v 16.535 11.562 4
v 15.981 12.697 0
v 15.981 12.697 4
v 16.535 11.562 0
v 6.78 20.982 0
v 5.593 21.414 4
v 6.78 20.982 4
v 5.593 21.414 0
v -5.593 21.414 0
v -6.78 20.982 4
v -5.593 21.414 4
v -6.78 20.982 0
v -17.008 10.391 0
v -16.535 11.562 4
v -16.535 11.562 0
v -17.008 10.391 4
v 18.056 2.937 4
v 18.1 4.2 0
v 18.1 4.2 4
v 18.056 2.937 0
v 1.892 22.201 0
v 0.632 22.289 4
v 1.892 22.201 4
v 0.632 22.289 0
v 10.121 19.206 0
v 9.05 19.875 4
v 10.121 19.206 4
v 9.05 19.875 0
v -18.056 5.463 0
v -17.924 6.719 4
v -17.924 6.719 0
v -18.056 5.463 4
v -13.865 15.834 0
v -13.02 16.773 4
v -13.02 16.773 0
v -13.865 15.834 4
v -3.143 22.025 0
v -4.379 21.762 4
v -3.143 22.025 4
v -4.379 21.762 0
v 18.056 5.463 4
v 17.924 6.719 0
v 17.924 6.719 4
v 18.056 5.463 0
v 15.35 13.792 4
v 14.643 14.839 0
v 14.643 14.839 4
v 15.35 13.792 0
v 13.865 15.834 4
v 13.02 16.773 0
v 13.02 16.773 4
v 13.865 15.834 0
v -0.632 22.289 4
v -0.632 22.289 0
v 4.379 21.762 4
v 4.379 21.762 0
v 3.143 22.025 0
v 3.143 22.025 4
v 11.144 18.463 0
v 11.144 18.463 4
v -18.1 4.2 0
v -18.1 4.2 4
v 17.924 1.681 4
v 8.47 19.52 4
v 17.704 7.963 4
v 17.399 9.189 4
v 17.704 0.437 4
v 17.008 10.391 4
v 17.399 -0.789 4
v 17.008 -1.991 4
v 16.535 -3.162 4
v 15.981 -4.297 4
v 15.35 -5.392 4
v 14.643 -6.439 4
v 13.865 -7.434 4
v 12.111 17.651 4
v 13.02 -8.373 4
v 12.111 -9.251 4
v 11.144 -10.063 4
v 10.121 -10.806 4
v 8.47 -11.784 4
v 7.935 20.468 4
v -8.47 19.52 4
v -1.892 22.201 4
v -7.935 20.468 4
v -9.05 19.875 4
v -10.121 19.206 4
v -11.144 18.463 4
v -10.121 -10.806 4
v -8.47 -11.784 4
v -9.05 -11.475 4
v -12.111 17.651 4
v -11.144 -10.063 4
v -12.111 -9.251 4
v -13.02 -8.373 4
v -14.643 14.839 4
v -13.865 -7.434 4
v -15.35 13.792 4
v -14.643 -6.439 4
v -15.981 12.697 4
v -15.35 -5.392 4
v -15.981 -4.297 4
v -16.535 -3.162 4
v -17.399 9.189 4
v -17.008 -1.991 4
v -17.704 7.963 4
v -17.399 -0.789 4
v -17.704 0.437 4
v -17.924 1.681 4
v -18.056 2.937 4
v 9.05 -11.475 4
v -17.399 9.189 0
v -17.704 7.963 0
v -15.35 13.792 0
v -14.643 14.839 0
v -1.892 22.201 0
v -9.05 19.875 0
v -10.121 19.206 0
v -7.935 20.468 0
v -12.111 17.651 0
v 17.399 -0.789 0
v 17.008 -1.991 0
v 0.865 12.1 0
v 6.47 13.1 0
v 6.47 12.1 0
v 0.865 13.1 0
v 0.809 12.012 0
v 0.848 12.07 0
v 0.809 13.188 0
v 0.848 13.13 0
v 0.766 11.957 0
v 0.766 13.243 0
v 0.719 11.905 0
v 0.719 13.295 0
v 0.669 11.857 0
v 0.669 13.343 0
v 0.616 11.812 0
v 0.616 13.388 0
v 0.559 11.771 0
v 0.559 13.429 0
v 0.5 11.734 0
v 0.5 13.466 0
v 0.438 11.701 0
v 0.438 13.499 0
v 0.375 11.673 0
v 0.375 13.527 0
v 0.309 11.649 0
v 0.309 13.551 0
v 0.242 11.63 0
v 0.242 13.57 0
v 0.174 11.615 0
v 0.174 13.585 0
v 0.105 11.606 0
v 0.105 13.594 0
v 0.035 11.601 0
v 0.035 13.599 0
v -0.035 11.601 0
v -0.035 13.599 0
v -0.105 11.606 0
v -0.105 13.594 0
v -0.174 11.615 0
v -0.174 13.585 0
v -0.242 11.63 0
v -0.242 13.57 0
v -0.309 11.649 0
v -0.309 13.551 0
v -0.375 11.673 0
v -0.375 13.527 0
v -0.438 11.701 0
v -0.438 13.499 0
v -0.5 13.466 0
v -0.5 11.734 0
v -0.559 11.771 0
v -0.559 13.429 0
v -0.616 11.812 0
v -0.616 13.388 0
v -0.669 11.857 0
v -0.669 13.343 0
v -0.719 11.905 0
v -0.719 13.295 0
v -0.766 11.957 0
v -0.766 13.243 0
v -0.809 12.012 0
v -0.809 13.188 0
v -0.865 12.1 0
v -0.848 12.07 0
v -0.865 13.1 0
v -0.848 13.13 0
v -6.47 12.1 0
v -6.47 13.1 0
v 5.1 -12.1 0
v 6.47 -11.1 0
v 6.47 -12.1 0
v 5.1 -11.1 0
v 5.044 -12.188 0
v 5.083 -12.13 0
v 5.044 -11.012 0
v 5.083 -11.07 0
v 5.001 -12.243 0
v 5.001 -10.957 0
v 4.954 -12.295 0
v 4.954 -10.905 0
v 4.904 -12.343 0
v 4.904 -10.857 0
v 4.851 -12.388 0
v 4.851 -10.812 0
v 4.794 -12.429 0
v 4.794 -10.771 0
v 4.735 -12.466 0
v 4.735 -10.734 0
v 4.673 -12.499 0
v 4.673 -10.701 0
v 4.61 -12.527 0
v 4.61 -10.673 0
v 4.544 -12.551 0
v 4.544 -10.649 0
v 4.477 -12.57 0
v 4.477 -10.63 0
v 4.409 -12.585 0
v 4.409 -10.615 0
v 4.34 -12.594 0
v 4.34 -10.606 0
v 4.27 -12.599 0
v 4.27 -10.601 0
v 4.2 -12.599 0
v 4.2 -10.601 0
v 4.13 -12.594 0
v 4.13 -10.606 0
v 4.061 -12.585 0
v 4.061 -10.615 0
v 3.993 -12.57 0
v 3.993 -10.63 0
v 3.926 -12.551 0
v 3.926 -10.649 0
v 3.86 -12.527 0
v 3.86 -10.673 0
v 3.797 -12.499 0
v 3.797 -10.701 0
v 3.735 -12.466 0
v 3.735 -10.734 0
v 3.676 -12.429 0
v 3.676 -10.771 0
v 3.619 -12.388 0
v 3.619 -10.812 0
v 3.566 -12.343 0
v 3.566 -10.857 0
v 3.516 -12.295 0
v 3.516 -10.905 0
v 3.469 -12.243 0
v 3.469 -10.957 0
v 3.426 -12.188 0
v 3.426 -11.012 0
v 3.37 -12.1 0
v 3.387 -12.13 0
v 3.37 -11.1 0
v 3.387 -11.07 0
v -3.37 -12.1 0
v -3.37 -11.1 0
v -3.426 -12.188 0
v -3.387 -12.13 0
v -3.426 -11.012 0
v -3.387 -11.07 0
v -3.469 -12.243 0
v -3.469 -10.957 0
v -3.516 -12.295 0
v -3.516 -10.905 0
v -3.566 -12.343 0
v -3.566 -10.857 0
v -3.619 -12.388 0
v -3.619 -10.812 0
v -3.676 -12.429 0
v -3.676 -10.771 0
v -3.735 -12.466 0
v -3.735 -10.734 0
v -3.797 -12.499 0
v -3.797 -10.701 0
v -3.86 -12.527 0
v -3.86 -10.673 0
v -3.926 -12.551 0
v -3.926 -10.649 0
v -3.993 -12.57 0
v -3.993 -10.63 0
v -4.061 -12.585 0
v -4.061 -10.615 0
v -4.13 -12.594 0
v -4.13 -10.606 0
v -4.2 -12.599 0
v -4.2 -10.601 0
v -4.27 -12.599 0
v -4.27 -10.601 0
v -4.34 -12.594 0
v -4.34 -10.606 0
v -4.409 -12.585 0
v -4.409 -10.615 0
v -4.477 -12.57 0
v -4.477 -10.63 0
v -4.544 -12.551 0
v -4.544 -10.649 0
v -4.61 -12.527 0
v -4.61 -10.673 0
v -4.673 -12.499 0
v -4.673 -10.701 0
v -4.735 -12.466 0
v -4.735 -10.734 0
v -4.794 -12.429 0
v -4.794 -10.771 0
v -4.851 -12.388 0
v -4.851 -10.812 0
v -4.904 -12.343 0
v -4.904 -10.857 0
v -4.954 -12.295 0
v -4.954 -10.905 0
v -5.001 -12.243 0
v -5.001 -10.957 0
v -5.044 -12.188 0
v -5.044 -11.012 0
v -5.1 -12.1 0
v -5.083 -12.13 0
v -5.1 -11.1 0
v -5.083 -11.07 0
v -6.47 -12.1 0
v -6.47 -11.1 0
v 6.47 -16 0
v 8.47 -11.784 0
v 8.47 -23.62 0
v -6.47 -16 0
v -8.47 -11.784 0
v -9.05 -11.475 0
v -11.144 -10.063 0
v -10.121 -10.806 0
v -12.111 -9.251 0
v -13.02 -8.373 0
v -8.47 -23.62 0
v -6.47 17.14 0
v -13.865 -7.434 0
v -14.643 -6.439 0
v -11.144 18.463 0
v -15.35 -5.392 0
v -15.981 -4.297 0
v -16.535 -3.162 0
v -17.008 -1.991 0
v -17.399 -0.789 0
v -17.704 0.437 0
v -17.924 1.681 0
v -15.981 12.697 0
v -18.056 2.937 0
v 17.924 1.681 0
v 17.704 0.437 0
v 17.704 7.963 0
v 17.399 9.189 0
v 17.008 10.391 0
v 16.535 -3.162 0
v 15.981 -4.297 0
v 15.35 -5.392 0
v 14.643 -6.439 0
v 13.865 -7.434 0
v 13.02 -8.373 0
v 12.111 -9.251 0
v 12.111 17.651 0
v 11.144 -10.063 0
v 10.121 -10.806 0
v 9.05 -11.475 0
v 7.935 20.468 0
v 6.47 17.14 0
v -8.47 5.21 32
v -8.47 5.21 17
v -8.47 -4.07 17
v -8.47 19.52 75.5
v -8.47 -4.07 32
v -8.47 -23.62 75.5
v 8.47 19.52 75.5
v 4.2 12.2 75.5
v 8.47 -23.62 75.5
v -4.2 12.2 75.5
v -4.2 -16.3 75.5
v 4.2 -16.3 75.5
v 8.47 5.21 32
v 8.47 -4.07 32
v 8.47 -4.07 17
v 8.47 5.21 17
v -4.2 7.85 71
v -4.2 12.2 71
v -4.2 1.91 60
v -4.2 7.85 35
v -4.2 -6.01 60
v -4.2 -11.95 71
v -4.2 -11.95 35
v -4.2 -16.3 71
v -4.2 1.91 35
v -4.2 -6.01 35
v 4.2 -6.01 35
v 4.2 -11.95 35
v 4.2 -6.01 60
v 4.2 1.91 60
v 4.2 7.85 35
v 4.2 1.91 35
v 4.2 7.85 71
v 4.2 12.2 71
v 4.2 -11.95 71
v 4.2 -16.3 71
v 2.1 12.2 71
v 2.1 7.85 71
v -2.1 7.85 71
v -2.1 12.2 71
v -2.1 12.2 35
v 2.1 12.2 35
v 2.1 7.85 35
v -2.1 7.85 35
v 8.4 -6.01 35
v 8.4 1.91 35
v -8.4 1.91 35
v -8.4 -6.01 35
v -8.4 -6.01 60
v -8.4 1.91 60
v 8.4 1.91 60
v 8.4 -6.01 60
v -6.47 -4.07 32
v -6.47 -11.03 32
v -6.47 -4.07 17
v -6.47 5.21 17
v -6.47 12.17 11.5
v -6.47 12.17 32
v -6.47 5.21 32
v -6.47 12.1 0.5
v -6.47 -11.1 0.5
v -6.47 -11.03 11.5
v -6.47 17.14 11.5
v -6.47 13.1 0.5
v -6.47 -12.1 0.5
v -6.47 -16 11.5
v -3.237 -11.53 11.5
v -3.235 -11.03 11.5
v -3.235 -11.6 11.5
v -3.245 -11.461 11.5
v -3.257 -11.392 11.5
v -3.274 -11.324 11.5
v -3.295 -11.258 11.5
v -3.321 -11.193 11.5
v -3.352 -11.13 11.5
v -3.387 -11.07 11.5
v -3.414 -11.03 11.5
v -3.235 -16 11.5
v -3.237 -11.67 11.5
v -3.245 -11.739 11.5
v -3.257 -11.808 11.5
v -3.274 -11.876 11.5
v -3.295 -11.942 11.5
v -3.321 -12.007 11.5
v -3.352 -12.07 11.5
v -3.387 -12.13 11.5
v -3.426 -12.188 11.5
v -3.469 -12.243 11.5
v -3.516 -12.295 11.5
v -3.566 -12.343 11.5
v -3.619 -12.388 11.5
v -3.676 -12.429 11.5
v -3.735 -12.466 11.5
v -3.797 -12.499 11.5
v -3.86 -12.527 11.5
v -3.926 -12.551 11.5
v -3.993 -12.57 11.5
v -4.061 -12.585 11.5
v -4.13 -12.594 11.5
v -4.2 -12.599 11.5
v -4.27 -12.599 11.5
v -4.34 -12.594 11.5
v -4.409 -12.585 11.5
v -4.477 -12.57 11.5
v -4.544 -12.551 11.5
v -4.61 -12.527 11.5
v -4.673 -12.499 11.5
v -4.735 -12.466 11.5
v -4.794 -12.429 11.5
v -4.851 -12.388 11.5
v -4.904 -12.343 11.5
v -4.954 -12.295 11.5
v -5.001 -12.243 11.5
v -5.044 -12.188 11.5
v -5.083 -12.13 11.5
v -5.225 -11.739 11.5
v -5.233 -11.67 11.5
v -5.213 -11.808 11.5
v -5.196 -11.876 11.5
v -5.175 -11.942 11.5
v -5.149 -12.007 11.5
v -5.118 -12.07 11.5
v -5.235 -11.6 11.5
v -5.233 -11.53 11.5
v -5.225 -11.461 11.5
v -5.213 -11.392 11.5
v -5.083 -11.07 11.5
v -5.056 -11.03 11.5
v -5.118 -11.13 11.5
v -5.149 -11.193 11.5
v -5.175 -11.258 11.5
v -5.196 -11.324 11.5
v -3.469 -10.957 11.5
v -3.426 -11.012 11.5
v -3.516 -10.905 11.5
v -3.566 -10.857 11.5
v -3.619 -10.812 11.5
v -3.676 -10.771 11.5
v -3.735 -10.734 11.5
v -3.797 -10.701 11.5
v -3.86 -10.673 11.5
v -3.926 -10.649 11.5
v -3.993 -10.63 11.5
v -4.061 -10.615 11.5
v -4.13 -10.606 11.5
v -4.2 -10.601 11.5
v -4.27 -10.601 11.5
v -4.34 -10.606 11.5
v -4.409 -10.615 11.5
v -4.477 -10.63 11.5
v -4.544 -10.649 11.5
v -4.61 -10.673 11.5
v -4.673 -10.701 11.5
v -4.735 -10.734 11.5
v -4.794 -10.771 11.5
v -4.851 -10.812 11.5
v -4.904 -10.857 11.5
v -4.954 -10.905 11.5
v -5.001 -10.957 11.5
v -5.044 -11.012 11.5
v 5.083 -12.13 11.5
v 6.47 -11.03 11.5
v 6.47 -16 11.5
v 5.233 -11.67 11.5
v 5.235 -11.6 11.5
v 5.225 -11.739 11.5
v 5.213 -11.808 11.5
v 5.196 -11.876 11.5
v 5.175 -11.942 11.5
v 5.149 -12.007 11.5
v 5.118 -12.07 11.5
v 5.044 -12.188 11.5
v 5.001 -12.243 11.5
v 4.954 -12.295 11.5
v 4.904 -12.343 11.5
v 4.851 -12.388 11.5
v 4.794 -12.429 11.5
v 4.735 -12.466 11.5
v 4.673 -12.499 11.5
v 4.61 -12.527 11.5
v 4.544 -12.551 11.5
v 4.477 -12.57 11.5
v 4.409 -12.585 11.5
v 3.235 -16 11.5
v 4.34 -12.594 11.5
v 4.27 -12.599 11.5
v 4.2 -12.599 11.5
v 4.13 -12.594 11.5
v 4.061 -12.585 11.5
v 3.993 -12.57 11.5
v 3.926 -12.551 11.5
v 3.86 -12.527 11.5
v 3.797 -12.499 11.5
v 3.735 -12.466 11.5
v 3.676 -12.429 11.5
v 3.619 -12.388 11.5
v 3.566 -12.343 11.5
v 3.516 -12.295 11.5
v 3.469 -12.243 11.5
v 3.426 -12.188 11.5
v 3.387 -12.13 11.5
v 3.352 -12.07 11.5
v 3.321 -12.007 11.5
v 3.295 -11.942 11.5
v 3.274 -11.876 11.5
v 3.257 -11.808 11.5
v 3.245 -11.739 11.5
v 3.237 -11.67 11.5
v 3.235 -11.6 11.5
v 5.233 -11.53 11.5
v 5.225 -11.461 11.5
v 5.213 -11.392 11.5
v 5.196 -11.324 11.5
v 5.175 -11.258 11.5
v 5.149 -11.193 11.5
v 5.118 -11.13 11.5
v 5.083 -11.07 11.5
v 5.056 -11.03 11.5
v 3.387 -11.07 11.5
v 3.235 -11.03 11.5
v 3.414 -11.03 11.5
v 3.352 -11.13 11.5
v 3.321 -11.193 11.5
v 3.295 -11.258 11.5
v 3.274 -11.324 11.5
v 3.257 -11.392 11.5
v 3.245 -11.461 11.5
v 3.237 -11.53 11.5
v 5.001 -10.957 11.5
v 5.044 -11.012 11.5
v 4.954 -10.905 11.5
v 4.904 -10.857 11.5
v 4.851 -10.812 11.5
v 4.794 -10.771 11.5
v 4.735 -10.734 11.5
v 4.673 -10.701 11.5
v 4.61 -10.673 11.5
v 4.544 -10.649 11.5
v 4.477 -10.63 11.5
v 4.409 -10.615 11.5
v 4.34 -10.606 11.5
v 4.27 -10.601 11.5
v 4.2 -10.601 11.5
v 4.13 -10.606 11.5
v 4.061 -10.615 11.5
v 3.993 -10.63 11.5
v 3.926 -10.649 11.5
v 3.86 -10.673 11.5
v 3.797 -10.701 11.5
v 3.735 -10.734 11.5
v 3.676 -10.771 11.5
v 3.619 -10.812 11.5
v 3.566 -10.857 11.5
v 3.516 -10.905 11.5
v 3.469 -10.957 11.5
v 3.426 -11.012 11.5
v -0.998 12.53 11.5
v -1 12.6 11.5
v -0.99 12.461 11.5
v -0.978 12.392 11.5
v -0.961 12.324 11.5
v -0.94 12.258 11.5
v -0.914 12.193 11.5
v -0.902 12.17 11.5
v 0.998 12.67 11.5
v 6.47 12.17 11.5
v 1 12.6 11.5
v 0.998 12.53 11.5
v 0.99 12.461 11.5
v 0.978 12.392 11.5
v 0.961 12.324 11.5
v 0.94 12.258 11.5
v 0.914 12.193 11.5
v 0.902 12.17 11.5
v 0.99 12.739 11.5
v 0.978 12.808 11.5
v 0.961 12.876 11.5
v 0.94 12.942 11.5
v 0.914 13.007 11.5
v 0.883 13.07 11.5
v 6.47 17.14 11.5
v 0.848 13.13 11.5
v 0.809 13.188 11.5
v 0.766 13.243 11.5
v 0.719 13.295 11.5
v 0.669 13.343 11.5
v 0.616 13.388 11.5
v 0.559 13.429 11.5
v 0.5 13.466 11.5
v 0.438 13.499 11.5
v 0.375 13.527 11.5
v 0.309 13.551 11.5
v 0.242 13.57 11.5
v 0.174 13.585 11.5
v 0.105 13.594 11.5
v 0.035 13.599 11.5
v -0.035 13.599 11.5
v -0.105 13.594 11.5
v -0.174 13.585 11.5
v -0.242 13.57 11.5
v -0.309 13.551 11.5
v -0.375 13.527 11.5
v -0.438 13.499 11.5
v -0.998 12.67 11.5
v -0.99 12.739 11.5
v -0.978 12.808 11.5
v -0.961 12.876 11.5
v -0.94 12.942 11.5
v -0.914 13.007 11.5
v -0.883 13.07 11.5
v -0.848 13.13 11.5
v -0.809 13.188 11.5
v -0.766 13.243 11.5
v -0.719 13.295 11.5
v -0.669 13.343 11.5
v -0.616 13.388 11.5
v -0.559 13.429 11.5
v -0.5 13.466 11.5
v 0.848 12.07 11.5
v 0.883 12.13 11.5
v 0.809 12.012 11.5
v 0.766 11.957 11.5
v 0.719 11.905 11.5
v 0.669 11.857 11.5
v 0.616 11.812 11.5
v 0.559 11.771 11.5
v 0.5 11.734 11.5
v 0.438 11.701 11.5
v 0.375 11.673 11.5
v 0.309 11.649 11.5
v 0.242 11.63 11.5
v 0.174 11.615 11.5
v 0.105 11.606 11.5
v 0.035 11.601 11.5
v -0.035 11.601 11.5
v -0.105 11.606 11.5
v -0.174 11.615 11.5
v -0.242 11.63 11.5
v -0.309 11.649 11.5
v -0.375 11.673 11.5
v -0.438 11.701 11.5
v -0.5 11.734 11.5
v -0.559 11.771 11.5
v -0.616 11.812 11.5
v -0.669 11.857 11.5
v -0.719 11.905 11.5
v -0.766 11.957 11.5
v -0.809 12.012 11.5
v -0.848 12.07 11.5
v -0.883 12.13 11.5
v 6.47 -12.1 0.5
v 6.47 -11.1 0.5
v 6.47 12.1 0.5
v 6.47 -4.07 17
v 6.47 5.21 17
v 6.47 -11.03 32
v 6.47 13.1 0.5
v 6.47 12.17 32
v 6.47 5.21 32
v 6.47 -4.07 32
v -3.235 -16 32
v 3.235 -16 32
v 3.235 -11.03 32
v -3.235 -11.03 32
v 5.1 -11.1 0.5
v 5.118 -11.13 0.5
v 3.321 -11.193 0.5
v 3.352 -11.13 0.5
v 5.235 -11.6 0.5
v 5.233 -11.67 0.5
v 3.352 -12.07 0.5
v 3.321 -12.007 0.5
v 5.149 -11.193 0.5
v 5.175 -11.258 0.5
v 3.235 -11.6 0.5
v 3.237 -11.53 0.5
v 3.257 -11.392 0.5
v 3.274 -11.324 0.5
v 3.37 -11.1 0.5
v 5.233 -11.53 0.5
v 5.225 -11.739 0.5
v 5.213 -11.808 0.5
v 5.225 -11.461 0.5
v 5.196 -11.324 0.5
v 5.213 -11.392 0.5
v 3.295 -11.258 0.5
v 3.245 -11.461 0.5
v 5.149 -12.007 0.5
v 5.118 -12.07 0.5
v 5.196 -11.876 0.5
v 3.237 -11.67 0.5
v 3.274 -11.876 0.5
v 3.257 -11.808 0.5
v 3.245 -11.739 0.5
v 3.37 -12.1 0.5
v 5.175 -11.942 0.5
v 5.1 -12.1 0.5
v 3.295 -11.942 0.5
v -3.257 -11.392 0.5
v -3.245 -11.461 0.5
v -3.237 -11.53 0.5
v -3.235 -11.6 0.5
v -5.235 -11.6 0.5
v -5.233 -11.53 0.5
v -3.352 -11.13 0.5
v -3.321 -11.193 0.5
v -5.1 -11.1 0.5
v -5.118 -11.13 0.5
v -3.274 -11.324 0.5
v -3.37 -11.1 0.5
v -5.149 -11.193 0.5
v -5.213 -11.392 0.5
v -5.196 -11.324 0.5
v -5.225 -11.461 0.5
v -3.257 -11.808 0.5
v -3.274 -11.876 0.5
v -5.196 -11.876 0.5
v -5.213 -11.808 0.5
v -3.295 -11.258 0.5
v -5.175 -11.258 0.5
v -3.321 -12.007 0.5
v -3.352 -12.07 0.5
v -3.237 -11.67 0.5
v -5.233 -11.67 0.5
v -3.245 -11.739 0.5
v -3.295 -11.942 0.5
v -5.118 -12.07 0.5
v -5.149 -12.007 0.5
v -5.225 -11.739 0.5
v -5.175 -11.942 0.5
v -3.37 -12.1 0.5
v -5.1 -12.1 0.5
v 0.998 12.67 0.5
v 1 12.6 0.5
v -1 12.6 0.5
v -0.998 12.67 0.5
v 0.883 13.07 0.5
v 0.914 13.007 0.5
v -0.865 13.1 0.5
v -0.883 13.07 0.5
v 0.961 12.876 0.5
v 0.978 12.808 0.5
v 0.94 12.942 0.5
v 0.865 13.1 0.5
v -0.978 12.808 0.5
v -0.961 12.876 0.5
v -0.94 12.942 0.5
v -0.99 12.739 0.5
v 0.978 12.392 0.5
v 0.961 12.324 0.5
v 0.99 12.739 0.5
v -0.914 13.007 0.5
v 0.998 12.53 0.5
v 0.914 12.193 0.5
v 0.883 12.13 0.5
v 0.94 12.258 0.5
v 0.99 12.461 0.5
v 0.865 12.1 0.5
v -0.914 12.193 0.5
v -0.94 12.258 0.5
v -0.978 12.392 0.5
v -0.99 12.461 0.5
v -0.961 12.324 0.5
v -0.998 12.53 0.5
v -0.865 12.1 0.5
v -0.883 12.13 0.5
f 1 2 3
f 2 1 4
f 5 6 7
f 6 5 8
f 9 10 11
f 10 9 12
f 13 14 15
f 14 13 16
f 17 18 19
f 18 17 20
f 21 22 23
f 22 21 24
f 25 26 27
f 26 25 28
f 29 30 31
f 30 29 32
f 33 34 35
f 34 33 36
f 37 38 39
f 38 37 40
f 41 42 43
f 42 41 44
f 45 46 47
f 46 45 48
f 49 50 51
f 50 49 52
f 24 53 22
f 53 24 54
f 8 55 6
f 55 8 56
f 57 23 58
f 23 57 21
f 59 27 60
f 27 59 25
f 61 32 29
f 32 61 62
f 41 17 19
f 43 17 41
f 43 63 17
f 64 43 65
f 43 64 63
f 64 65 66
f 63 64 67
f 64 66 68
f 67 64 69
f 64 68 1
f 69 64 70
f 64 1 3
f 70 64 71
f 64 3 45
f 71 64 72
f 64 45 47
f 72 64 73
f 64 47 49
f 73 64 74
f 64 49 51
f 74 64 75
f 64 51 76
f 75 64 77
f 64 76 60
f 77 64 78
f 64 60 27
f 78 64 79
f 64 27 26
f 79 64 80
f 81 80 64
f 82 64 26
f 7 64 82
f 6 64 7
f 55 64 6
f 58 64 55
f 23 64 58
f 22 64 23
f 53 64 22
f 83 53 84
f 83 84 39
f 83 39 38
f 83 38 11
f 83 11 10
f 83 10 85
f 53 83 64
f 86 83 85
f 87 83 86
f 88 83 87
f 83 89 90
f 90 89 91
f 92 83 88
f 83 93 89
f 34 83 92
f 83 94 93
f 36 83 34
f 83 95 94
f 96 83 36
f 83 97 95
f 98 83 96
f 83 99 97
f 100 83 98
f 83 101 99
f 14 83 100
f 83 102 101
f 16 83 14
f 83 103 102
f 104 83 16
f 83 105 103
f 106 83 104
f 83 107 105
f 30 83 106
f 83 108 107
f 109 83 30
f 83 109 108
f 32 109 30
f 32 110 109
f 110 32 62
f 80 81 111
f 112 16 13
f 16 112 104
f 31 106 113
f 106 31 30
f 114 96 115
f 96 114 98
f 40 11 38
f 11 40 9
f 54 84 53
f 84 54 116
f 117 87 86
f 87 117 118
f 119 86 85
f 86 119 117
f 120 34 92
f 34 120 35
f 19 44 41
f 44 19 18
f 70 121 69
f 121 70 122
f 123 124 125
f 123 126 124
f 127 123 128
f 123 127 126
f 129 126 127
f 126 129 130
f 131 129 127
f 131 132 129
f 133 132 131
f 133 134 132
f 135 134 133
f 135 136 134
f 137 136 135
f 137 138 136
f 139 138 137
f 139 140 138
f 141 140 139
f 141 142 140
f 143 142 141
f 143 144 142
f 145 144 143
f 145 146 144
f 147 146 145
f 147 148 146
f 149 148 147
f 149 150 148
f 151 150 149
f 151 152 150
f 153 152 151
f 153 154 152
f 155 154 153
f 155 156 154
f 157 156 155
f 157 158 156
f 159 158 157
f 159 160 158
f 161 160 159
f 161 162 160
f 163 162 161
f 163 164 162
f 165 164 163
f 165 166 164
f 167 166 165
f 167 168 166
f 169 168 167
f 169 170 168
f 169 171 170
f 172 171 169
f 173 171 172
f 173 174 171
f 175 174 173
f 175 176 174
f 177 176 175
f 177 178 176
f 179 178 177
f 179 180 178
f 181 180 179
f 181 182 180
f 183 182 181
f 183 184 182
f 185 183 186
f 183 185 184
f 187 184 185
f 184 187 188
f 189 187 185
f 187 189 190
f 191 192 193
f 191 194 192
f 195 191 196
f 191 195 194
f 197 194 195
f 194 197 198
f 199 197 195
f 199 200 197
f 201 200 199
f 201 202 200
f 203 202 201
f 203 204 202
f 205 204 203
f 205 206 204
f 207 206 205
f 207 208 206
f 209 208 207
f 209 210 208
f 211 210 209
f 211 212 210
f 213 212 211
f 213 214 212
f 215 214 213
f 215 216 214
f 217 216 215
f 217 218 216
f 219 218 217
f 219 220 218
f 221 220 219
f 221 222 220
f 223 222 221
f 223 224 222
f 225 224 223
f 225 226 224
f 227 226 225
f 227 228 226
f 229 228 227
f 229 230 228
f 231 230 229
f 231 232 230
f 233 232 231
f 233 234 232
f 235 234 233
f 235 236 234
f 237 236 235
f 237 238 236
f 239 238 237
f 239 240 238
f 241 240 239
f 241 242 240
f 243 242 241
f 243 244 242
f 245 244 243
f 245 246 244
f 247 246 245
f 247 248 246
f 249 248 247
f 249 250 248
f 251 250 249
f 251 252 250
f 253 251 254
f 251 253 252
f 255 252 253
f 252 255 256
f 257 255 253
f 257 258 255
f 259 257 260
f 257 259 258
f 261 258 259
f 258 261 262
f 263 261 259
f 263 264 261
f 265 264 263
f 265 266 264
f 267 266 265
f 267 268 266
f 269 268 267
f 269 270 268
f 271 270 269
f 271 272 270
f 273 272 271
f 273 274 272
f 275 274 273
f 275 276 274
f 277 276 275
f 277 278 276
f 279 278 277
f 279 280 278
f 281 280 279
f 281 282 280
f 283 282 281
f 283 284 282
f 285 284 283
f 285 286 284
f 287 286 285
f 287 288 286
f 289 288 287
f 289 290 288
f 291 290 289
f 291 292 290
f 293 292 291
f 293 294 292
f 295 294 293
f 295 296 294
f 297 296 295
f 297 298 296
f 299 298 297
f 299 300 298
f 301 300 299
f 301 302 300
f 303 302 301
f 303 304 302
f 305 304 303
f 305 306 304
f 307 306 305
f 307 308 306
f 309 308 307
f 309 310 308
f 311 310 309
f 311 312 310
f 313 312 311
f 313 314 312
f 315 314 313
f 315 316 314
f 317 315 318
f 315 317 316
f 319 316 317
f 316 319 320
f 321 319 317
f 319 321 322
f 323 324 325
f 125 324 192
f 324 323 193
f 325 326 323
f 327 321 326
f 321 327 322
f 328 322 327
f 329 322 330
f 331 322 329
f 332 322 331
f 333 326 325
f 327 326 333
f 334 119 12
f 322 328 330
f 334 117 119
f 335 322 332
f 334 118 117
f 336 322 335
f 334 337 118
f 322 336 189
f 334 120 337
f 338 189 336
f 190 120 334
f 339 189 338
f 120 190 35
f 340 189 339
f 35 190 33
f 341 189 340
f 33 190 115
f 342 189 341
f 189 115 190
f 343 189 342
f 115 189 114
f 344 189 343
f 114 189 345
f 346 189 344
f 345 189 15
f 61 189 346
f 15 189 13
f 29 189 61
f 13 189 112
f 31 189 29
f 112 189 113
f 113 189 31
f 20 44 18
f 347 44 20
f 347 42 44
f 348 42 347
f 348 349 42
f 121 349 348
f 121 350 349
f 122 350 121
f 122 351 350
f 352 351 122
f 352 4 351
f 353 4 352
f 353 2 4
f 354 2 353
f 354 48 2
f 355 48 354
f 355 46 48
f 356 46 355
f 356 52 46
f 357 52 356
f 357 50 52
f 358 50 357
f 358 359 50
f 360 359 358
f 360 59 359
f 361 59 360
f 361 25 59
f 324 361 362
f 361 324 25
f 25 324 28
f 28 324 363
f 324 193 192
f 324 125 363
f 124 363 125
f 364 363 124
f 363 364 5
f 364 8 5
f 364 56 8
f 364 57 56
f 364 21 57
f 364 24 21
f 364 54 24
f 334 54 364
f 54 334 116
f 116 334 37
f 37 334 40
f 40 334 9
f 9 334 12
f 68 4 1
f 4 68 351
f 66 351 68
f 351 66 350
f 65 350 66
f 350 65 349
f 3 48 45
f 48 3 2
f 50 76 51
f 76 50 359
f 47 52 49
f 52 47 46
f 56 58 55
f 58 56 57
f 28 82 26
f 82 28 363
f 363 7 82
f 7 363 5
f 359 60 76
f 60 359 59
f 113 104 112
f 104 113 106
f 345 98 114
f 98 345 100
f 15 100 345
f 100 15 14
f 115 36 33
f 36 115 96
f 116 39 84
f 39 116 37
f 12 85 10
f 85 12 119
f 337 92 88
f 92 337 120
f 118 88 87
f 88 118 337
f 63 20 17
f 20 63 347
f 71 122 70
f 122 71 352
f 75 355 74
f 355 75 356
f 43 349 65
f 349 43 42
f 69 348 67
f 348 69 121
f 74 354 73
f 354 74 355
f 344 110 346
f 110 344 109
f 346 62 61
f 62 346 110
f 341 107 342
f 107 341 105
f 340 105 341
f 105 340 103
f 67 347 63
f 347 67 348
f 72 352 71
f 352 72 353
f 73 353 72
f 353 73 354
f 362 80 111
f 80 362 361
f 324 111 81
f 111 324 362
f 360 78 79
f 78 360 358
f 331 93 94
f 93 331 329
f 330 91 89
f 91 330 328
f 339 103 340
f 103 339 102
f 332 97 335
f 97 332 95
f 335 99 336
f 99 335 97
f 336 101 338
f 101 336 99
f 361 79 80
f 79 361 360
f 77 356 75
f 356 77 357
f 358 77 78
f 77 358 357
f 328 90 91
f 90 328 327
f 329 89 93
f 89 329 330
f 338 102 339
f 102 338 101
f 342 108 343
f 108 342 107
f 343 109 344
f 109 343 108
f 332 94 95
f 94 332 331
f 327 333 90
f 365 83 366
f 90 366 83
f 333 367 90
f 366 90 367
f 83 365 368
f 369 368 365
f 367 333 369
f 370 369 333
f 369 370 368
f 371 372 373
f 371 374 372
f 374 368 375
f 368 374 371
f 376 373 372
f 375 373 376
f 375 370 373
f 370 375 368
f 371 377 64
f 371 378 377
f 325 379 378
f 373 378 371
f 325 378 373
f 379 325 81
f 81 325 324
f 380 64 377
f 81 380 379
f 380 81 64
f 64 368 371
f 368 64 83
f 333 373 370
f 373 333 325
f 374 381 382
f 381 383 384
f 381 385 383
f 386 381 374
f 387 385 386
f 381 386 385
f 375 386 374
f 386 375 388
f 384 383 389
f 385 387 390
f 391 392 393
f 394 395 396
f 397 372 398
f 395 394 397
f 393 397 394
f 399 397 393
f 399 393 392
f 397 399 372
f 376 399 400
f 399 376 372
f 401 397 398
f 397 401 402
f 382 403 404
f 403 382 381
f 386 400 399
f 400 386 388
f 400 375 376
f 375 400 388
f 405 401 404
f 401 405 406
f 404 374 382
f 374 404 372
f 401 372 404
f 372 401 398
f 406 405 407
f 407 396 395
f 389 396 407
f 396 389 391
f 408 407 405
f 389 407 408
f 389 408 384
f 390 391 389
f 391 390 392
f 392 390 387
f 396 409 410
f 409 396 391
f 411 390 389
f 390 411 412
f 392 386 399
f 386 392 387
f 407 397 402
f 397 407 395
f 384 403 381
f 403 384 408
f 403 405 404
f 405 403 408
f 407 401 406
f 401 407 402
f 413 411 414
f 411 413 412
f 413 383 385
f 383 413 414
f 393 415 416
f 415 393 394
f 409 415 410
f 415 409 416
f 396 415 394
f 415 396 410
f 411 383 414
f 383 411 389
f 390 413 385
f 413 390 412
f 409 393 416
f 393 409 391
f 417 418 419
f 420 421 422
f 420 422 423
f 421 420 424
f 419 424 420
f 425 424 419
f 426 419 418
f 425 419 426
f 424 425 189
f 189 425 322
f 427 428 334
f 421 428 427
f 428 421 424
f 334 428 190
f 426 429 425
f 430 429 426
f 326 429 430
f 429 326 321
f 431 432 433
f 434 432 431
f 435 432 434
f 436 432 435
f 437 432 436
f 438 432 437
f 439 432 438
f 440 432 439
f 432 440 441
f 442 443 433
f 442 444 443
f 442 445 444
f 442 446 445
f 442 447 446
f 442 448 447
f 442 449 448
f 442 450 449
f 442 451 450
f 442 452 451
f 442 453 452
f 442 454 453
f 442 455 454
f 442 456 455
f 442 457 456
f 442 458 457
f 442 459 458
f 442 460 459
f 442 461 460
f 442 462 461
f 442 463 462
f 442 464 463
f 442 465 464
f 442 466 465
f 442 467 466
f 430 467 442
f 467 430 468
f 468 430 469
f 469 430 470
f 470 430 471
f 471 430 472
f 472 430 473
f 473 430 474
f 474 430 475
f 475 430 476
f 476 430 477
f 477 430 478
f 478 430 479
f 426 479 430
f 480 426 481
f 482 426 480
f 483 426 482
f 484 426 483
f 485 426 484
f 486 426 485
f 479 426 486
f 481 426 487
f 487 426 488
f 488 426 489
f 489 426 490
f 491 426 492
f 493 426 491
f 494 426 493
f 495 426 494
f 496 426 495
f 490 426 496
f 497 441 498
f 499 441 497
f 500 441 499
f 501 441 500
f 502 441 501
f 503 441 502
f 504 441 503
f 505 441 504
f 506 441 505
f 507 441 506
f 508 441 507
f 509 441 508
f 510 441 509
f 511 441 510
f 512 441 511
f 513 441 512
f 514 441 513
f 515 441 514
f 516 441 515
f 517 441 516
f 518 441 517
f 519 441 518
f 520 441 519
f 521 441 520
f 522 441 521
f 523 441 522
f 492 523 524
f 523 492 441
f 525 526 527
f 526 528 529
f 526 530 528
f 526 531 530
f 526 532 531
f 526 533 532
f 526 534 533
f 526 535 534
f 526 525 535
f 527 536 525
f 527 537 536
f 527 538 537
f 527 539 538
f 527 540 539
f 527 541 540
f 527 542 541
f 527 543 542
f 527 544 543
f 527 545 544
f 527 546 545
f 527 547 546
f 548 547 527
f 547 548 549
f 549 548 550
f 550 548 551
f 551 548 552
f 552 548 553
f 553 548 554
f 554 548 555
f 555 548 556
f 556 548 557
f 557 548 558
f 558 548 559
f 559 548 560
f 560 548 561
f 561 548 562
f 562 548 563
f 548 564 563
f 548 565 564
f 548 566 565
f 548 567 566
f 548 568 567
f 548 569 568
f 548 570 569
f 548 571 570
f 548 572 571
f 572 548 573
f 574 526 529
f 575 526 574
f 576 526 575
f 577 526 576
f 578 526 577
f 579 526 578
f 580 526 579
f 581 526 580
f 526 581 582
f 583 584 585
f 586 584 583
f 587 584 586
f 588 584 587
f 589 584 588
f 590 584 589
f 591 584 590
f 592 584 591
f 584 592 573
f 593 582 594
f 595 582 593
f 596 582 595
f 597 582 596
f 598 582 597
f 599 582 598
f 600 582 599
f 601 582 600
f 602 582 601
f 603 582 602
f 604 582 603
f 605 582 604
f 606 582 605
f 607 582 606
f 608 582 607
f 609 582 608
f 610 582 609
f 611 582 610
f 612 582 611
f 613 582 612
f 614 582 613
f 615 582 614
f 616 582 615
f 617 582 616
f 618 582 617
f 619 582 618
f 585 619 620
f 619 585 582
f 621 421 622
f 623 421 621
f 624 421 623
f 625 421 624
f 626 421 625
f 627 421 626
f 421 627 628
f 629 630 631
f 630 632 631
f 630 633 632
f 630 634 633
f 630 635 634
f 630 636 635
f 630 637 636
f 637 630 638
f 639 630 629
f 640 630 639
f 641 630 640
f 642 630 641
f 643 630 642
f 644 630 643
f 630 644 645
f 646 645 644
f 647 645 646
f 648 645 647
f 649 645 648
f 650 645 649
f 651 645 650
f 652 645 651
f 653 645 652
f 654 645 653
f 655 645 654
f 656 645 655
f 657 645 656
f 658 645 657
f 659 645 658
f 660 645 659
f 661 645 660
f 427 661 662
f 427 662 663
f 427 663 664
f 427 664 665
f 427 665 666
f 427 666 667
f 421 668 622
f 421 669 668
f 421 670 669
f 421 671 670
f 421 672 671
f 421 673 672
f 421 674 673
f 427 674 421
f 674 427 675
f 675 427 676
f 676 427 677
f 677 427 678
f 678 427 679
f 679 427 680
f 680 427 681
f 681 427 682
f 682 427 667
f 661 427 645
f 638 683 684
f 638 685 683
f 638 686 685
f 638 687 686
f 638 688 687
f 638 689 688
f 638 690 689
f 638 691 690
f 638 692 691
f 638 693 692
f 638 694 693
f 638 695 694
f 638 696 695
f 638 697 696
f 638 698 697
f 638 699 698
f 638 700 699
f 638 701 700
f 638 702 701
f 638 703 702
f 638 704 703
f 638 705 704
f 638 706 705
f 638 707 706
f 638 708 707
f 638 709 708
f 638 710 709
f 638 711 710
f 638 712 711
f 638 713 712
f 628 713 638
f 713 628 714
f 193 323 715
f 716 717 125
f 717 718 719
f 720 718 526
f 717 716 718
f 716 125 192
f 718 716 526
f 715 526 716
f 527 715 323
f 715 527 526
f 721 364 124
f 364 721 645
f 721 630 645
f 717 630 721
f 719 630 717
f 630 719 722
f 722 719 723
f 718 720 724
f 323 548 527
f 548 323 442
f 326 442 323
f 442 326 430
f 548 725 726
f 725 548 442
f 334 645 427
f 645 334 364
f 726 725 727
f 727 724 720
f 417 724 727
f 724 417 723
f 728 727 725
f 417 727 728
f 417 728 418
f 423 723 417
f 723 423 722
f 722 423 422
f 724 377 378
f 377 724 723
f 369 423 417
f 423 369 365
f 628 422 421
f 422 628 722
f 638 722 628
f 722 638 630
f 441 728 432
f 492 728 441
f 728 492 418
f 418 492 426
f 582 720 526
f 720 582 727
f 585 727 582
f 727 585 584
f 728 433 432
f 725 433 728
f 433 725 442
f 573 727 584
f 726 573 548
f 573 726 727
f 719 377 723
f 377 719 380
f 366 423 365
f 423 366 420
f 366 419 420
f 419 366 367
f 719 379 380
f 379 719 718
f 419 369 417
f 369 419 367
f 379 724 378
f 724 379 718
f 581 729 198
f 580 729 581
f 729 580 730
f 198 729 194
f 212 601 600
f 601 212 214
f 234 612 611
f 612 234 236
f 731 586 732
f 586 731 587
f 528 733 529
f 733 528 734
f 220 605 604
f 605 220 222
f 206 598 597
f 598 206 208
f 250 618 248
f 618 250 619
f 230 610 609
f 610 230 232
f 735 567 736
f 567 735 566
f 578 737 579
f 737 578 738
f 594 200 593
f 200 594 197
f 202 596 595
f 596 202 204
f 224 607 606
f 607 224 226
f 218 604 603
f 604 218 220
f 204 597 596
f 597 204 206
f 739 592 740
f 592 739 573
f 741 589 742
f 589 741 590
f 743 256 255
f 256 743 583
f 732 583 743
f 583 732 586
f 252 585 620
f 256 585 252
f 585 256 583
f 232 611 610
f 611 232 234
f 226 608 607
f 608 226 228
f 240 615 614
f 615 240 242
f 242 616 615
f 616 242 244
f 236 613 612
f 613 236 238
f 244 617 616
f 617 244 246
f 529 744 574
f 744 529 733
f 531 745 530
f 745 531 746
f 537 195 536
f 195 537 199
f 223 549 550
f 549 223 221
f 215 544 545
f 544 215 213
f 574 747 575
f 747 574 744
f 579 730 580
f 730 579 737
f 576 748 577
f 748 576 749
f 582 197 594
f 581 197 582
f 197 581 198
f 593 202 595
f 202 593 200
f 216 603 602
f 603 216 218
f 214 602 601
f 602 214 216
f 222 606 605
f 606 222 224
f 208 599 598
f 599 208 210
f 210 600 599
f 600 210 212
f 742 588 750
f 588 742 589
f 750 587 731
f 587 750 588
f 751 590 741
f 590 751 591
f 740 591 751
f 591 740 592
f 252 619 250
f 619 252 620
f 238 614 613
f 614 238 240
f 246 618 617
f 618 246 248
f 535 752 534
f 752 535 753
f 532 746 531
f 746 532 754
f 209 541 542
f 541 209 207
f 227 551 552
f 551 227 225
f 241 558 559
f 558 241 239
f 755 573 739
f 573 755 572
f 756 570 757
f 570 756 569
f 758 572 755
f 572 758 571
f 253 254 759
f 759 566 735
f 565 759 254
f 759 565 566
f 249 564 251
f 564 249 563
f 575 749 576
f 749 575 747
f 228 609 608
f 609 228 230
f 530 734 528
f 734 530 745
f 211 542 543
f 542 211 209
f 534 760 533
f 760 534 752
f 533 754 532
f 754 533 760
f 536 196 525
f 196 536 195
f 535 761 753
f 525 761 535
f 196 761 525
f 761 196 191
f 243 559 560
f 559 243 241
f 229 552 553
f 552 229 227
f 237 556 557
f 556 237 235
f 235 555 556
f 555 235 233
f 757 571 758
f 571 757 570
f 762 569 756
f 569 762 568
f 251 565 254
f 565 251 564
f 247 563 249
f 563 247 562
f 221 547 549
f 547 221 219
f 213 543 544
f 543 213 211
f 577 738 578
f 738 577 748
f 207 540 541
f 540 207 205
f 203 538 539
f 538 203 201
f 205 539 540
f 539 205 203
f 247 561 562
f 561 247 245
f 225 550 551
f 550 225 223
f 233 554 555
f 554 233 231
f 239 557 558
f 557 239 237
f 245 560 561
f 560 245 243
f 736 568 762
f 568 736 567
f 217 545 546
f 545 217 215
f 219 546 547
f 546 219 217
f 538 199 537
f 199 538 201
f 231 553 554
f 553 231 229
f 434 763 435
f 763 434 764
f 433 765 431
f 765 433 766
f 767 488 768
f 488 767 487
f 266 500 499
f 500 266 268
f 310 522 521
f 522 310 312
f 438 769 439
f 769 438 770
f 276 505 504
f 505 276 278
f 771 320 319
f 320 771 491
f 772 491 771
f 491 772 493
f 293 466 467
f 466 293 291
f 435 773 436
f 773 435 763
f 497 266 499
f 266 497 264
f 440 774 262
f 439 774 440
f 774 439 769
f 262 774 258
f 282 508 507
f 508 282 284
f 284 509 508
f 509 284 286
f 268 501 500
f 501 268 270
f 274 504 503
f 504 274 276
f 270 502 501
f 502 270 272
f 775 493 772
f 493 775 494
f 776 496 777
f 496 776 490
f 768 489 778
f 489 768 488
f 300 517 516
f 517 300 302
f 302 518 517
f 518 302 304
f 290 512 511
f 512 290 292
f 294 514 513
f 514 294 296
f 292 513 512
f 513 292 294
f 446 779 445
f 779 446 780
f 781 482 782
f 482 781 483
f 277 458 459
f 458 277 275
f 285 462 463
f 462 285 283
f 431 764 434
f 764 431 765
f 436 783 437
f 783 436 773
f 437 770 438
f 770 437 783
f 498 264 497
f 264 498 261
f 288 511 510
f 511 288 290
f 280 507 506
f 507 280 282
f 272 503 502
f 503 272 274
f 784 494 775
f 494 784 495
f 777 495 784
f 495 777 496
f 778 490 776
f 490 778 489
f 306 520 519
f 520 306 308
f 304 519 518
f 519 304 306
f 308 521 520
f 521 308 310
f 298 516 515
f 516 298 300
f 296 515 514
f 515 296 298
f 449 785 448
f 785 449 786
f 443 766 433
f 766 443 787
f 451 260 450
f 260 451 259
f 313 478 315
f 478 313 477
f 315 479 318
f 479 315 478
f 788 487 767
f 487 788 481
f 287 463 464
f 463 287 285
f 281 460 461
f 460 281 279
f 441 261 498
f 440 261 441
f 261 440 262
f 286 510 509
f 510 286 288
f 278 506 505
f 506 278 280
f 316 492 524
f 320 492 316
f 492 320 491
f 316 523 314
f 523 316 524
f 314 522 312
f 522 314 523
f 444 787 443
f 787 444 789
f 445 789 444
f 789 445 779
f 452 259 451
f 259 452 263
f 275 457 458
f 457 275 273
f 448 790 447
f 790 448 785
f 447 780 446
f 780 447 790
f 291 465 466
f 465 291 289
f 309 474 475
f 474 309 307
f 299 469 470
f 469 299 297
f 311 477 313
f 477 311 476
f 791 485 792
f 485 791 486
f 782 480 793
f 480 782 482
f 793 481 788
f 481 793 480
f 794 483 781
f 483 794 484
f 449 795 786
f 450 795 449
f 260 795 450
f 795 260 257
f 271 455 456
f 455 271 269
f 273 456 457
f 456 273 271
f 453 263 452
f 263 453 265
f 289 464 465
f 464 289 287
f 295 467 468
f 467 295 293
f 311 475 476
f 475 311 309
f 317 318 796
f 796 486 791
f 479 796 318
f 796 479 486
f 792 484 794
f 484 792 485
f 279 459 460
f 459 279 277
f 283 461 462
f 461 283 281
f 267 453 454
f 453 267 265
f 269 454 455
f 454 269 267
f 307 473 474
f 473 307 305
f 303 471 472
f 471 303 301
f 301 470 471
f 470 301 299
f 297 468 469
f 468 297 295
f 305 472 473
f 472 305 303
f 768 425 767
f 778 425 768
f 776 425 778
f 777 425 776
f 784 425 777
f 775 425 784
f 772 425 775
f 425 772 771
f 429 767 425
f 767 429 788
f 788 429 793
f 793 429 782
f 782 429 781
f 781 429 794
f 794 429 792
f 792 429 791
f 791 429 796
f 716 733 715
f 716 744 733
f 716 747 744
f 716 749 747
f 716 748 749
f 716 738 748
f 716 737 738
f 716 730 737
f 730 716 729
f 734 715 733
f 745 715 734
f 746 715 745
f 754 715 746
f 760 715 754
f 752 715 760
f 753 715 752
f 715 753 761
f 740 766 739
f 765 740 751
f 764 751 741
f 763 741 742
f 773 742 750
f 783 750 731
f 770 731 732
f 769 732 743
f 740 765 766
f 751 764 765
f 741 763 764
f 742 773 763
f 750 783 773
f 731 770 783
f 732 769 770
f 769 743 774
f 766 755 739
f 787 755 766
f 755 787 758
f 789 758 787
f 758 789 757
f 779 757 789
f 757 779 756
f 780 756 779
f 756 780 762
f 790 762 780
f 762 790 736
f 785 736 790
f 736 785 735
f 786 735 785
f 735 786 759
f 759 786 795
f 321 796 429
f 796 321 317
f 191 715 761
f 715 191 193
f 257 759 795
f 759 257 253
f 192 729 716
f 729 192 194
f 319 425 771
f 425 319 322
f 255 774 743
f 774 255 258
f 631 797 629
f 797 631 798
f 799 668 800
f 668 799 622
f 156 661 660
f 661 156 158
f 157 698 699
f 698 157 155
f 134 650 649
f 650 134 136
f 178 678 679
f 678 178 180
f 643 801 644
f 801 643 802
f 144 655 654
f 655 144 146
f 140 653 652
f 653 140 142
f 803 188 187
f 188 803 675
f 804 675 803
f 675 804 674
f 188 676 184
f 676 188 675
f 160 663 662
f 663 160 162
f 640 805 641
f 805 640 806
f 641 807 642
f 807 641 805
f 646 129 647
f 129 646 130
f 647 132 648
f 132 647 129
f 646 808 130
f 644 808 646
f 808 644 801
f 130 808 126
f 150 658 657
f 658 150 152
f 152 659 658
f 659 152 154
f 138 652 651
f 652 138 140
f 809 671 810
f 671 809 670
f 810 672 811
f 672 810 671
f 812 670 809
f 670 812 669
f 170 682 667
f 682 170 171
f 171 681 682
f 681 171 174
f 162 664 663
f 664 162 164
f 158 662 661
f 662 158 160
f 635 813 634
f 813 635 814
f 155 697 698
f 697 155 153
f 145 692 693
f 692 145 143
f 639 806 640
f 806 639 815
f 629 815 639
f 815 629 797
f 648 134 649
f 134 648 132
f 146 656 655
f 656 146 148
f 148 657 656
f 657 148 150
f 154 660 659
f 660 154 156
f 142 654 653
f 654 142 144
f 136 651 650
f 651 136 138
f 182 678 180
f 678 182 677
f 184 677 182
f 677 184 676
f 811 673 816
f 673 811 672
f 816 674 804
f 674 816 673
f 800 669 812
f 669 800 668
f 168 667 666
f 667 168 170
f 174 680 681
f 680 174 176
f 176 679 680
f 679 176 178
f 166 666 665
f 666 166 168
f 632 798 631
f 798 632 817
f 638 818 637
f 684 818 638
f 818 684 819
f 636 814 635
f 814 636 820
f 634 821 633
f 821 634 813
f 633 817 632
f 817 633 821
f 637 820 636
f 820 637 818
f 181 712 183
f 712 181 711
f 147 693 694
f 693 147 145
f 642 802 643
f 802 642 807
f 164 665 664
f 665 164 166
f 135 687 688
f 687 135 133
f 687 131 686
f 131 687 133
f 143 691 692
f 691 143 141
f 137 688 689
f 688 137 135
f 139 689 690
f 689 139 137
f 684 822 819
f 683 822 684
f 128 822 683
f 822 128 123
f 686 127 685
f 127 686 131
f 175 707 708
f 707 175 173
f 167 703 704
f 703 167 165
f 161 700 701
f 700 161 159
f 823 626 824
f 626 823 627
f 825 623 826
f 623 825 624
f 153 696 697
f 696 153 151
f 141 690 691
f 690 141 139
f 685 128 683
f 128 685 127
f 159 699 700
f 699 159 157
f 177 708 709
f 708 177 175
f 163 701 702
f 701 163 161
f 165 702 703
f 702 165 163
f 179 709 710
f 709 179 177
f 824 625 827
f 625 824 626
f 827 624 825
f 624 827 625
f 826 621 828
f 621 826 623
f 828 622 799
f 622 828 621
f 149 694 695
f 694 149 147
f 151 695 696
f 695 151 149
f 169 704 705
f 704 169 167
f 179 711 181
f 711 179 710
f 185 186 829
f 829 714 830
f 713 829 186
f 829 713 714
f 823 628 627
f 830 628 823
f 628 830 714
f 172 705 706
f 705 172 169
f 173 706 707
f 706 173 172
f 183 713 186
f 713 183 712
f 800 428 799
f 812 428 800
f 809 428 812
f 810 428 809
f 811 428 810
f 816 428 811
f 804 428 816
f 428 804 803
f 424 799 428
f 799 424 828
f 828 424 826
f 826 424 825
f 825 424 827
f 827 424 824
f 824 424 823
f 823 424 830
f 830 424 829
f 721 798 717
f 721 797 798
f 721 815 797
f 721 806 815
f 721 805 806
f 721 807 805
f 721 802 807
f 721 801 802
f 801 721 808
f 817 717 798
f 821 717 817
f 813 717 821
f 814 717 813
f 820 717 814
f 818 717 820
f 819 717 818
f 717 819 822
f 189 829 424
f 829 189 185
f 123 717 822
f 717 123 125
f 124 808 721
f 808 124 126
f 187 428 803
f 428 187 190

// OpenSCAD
// file: definitions.scad
$fn=90;

Z_SHRINK_FACTOR = 1;
//Z_SHRINK_FACTOR = 3;

TABS = [
    // top plate
    [1, 2, 3, 3, 2, 4, 4, 3, 1, 1],

    // middle plate
    [1, 2, 3, 3, 3, 3, 3, 2, 3, 3],

    // bottom plate
    [1, 2, 3, 4, 2, 4, 1, 2, 1, 2],
];

F = 0.5;
F = 1;

PLAY = 0.4;
TOLERANCE = 0.17;

SCREW_DIAMETER = 3;
SCREW_MAX_LENGTH = 10;
SCREW_DISTANCE_TO_BORDER = 4;
SCREW_PROTRUSION = 2;

ROTATION_STEP = 15; // degree
ENCODER_RADIUS = 20 - PLAY/2;
ENCODER_HEIGHT = 80 *F;
ENCODER_THICKNESS = 1.5 - PLAY/2;

ENCODER_ROTATION = -ROTATION_STEP * 10 * abs(sin($t*360));
//ENCODER_ROTATION = -ROTATION_STEP * 0;

TAB_VSIZE = 4 *F;
TAB_HSIZE = 3.5;
TAB_SPACING = 4.5 *F;

BODY_RADIUS = 25.2;
BODY_THICKNESS = 1;
BODY_WINDOW_MARGIN = 2;
BODY_BASE = 2;
BODY_GUIDE = 2; // <== TODO: Snapping ring
BODY_HEIGHT = ENCODER_HEIGHT + BODY_BASE;

BOTTOM_THICKNESS = 4;
BOTTOM_WHEELS_THICKNESS = 3;
BOTTOM_SERVO_WHEELS_MAX_RADIUS = 15;
BOTTOM_PLATE_THICKNESS = BOTTOM_THICKNESS - BOTTOM_WHEELS_THICKNESS;
BOTTOM_SERVO_SNAP_THICKNESS = 2;

SERVO1_HEIGHT = 26;
SERVO1_BODY_HEIGHT = 20;
SERVO1_BODY_WIDTH = 28.5;
SERVO1_BODY_THICKNESS = 8.4;
SERVO1_AXIS_SHIFT = 8 - SERVO1_BODY_WIDTH/2;
SERVO1_AXIS_RADIUS = 1.95;
SERVO1_CLEARANCE = 6.5;
SERVO1_BOTTOM_BODY_HEIGHT = 15;
SERVO1_BOTTOM_BODY_WIDTH = 19.8;
SERVO1_BOTTOM_CLEARANCE_HEIGHT = 21;
SERVO1_BOTTOM_HOLE_Z = 25;

SERVO2_HEIGHT = 30;
SERVO2_BODY_HEIGHT = 22.5;
SERVO2_BODY_WIDTH = 32.8 + TOLERANCE*2;
SERVO2_BODY_THICKNESS = 12.6 + TOLERANCE*2;
SERVO2_AXIS_SHIFT = SERVO2_BODY_WIDTH/2 -10;
SERVO2_AXIS_RADIUS = 2.5;
SERVO2_CLEARANCE = 12.5;
SERVO2_DISPLACEMENT = -7+1;
SERVO2_BOTTOM_BODY_HEIGHT = 15.5;
SERVO2_BOTTOM_BODY_WIDTH = 23.2;
SERVO2_BOTTOM_CLEARANCE_HEIGHT = 5;
SERVO2_BOTTOM_HOLE_Z = 15;

SERVO2_VERTICAL_OFFSET = -BOTTOM_WHEELS_THICKNESS;

ENCODER_DISPLACEMENT = BODY_RADIUS-ENCODER_RADIUS-BODY_THICKNESS -PLAY/2;

SERVO_HOLDER_HEIGHT = BODY_HEIGHT - SERVO1_CLEARANCE;
SERVO_HOLDER_THICKNESS = 2;
SERVO_HOLDER_CLEARANCE_X = 25;
SERVO_HOLDER_CLEARANCE_Y = 10;
SERVO_HOLDER_CAVITY_X = 4;
SERVO_HOLDER_CAVITY_Y = BODY_RADIUS - ENCODER_DISPLACEMENT -PLAY * 0;


SUPPORT_THICKNESS = 1.5;

TRANSMISSION_RADIUS_INNER = 1.5;
TRANSMISSION_RADIUS_OUTER = 4;
TRANSMISSION_RADIAL_SHIFT = 2;
TRANSMISSION_WHEEL_OVERLAP = 4;
TRANSMISSION_WHEEL_RADIUS = 3;
TRANSMISSION_AXIAL_HOLE_RADIUS = 0.5;

RIB_RADIUS = 2;
RIB_RADIAL_SHIFT = 1;

ATOM = 0.01;
// main file
include <definitions.scad>


module servo1_hull() {
    servo_hull(SERVO1_AXIS_RADIUS,
               SERVO1_AXIS_SHIFT,
               SERVO1_BODY_HEIGHT,
               SERVO1_BODY_THICKNESS, //SERVO1_BODY_THICKNESS_CLEARANCE,
               SERVO1_BODY_WIDTH, //SERVO1_BODY_WIDTH_CLEARANCE,
               SERVO1_BOTTOM_BODY_HEIGHT,
               SERVO1_BOTTOM_BODY_WIDTH,
               SERVO1_HEIGHT,
               SERVO_HOLDER_THICKNESS,
               SERVO1_BOTTOM_CLEARANCE_HEIGHT,
               //SERVO1_BOTTOM_HOLE_X, 
               SERVO1_BOTTOM_HOLE_Z,
               false);
}

module servo1_hull2(extent) {
    servo_hull2(extent,
                SERVO1_AXIS_SHIFT,
                SERVO1_BODY_THICKNESS,
                SERVO1_BODY_WIDTH);
}

module servo2_hull() {
    servo_hull(SERVO2_AXIS_RADIUS,
               SERVO2_AXIS_SHIFT,
               SERVO2_HEIGHT,
               SERVO2_BODY_THICKNESS, //SERVO2_BODY_THICKNESS_CLEARANCE,
               SERVO2_BODY_WIDTH, //SERVO2_BODY_WIDTH_CLEARANCE,
               SERVO2_BOTTOM_BODY_HEIGHT,
               SERVO2_BOTTOM_BODY_WIDTH,
               SERVO2_HEIGHT,
               SERVO_HOLDER_THICKNESS,
               SERVO2_BOTTOM_CLEARANCE_HEIGHT,
               //SERVO2_BOTTOM_HOLE_X, 
               SERVO2_BOTTOM_HOLE_Z,
               true);
}

module servo2_axis() {
    servo2_axis_(SERVO2_AXIS_RADIUS,
                 SERVO2_AXIS_SHIFT,
                 SERVO2_HEIGHT,
                 SERVO2_BODY_THICKNESS, //SERVO2_BODY_THICKNESS_CLEARANCE,
                 SERVO2_BODY_WIDTH, //SERVO2_BODY_WIDTH_CLEARANCE,
                 SERVO2_BOTTOM_BODY_HEIGHT,
                 SERVO2_BOTTOM_BODY_WIDTH,
                 SERVO2_HEIGHT,
                 SERVO_HOLDER_THICKNESS,
                 SERVO2_BOTTOM_CLEARANCE_HEIGHT,
                 true);
}

module servo2_pillars() {
    servo_pillars(SERVO2_AXIS_RADIUS,
                  SERVO2_AXIS_SHIFT,
                  SERVO2_HEIGHT,
                  SERVO2_BODY_THICKNESS, //SERVO2_BODY_THICKNESS_CLEARANCE,
                  SERVO2_BODY_WIDTH, //SERVO2_BODY_WIDTH_CLEARANCE,
                  SERVO2_BOTTOM_BODY_HEIGHT,
                  SERVO2_BOTTOM_BODY_WIDTH,
                  SERVO2_HEIGHT,
                  SERVO_HOLDER_THICKNESS);
}

module servo_pillars(servo_axis_radius,
                     servo_axis_shift,
                     servo_body_height,
                     servo_body_thickness,
//                     servo_body_thickness_clearance,
                     servo_body_width,
//                     servo_body_width_clearance,
                     servo_bottom_body_height,
                     servo_bottom_body_width,
                     servo_height,
                     bottom_clearance,
                     servo_holder_thickness)
{
    d = 2;
    d2 = 1;
    dx = servo_body_thickness/4 + d/2;
    dy = -servo_bottom_body_width/2;
    delta_h = servo_body_height - servo_bottom_body_height + SERVO2_VERTICAL_OFFSET;

    scale([1, 1, delta_h])
    translate([dx, dy, 0])
    cylinder(r=d/2, h=1);

    scale([1, 1, delta_h])
    translate([-dx, dy, 0])
    cylinder(r=d/2, h=1);

    scale([servo_body_thickness, 1, 0.5])
    translate([0, dy, d2/2])
    cube(d2, true);


    scale([1, 1, delta_h])
    translate([0, d2-dy, 0])
    cylinder(r=d/2, h=1);

    scale([servo_body_thickness, 1, 0.5])
    translate([0, d2-dy, d2/2])
    cube(d2, true);
    
}

module servo_hull(axis_radius,
                  axis_shift,
                  body_height,
                  body_thickness,
//                  body_thickness_clearance,
                  body_width,
//                  body_width_clearance,
                  bottom_body_height,
                  bottom_body_width,
                  height,
                  holder_thickness,
                  bottom_clearance,
                  //bottom_hole_x,
                  bottom_hole_z,
                  upside_down)
{
    // body
    delta_h = body_height - bottom_body_height;

    translate([0, axis_shift,
               upside_down ? delta_h/2 : delta_h/2 + bottom_body_height])
    cube([body_thickness, body_width, delta_h], true);

    translate([0, axis_shift,
               upside_down ? height - bottom_body_height/2 +bottom_clearance/2 : bottom_body_height/2 - bottom_clearance/2])
    cube([body_thickness, bottom_body_width, bottom_body_height + bottom_clearance], true);

    // cable slit
    d = (body_width - bottom_body_width) / 2 * (upside_down ? -1 : 1);
    translate([0, axis_shift + d,
               upside_down ? height - bottom_body_height/2 +bottom_clearance/2 : bottom_body_height/2 - bottom_clearance/2])

    cube([body_thickness/2, bottom_body_width, bottom_body_height + bottom_clearance], true);

    // lateral hole
    translate([0, axis_shift,
               upside_down ? height - bottom_hole_z/2 + bottom_clearance: +bottom_hole_z/2 - bottom_clearance])
    scale([body_thickness*2, 1, 1])
    cube([1, bottom_body_width/2.5, bottom_hole_z], true);

    // axis
    scale([1, 1, height + ATOM])
    cylinder(r=axis_radius, h=1);
}

module servo_hull2(extent,
                   axis_shift,
                   body_thickness,
                   body_width,
                   ) {
                       if(0)
    translate([0, axis_shift, extent/2])
    cube([body_thickness, body_width, extent], true);
}

module servo2_axis_(axis_radius,
                    axis_shift,
                    body_height,
                    body_thickness,
                    body_thickness_clearance,
                    body_width,
                    body_width_clearance,
                    bottom_body_height,
                    bottom_body_width,
                    height,
                    holder_thickness,
                    bottom_clearance,
                    upside_down)
{
    // axis
    scale([1, 1, height + ATOM])
    cylinder(r=axis_radius, h=1);
}


module servo_holder(width, thickness) {
    width = max(SERVO1_BODY_WIDTH, SERVO2_BODY_WIDTH);
    thickness = max(SERVO1_BODY_THICKNESS, SERVO2_BODY_THICKNESS);

    translate([0, ENCODER_DISPLACEMENT, 0])
    union() {
        // guiding disc
        scale([1, 1, BODY_GUIDE + BODY_BASE])
        cylinder(r=ENCODER_RADIUS-ENCODER_THICKNESS - PLAY, h=1, true);

        // central column
        difference() {
            translate([0, SERVO1_AXIS_SHIFT, SERVO_HOLDER_HEIGHT/2])
            cube([thickness + SERVO_HOLDER_THICKNESS*2,
            width + SERVO_HOLDER_THICKNESS*5,
            SERVO_HOLDER_HEIGHT], true);
        }
    }
}

module servo1_cavity() {
    translate([0, ENCODER_DISPLACEMENT, BODY_HEIGHT - SERVO1_HEIGHT]) {
        servo1_hull();
        servo1_hull2(BODY_HEIGHT);
    }
}

module servo2_cavity() {
    translate([0, SERVO2_DISPLACEMENT, SERVO2_VERTICAL_OFFSET])
    servo2_hull();
}


module servo_all() {
    difference() {
        servo_holder();
        servo1_cavity();
        servo2_cavity();
    }
    servo2_pillars();
}

intersection() {
    servo_all();

    if(0) // cross-cut
        scale(200)
        translate([0.5, 0, 0])
        cube(1, true);
}
